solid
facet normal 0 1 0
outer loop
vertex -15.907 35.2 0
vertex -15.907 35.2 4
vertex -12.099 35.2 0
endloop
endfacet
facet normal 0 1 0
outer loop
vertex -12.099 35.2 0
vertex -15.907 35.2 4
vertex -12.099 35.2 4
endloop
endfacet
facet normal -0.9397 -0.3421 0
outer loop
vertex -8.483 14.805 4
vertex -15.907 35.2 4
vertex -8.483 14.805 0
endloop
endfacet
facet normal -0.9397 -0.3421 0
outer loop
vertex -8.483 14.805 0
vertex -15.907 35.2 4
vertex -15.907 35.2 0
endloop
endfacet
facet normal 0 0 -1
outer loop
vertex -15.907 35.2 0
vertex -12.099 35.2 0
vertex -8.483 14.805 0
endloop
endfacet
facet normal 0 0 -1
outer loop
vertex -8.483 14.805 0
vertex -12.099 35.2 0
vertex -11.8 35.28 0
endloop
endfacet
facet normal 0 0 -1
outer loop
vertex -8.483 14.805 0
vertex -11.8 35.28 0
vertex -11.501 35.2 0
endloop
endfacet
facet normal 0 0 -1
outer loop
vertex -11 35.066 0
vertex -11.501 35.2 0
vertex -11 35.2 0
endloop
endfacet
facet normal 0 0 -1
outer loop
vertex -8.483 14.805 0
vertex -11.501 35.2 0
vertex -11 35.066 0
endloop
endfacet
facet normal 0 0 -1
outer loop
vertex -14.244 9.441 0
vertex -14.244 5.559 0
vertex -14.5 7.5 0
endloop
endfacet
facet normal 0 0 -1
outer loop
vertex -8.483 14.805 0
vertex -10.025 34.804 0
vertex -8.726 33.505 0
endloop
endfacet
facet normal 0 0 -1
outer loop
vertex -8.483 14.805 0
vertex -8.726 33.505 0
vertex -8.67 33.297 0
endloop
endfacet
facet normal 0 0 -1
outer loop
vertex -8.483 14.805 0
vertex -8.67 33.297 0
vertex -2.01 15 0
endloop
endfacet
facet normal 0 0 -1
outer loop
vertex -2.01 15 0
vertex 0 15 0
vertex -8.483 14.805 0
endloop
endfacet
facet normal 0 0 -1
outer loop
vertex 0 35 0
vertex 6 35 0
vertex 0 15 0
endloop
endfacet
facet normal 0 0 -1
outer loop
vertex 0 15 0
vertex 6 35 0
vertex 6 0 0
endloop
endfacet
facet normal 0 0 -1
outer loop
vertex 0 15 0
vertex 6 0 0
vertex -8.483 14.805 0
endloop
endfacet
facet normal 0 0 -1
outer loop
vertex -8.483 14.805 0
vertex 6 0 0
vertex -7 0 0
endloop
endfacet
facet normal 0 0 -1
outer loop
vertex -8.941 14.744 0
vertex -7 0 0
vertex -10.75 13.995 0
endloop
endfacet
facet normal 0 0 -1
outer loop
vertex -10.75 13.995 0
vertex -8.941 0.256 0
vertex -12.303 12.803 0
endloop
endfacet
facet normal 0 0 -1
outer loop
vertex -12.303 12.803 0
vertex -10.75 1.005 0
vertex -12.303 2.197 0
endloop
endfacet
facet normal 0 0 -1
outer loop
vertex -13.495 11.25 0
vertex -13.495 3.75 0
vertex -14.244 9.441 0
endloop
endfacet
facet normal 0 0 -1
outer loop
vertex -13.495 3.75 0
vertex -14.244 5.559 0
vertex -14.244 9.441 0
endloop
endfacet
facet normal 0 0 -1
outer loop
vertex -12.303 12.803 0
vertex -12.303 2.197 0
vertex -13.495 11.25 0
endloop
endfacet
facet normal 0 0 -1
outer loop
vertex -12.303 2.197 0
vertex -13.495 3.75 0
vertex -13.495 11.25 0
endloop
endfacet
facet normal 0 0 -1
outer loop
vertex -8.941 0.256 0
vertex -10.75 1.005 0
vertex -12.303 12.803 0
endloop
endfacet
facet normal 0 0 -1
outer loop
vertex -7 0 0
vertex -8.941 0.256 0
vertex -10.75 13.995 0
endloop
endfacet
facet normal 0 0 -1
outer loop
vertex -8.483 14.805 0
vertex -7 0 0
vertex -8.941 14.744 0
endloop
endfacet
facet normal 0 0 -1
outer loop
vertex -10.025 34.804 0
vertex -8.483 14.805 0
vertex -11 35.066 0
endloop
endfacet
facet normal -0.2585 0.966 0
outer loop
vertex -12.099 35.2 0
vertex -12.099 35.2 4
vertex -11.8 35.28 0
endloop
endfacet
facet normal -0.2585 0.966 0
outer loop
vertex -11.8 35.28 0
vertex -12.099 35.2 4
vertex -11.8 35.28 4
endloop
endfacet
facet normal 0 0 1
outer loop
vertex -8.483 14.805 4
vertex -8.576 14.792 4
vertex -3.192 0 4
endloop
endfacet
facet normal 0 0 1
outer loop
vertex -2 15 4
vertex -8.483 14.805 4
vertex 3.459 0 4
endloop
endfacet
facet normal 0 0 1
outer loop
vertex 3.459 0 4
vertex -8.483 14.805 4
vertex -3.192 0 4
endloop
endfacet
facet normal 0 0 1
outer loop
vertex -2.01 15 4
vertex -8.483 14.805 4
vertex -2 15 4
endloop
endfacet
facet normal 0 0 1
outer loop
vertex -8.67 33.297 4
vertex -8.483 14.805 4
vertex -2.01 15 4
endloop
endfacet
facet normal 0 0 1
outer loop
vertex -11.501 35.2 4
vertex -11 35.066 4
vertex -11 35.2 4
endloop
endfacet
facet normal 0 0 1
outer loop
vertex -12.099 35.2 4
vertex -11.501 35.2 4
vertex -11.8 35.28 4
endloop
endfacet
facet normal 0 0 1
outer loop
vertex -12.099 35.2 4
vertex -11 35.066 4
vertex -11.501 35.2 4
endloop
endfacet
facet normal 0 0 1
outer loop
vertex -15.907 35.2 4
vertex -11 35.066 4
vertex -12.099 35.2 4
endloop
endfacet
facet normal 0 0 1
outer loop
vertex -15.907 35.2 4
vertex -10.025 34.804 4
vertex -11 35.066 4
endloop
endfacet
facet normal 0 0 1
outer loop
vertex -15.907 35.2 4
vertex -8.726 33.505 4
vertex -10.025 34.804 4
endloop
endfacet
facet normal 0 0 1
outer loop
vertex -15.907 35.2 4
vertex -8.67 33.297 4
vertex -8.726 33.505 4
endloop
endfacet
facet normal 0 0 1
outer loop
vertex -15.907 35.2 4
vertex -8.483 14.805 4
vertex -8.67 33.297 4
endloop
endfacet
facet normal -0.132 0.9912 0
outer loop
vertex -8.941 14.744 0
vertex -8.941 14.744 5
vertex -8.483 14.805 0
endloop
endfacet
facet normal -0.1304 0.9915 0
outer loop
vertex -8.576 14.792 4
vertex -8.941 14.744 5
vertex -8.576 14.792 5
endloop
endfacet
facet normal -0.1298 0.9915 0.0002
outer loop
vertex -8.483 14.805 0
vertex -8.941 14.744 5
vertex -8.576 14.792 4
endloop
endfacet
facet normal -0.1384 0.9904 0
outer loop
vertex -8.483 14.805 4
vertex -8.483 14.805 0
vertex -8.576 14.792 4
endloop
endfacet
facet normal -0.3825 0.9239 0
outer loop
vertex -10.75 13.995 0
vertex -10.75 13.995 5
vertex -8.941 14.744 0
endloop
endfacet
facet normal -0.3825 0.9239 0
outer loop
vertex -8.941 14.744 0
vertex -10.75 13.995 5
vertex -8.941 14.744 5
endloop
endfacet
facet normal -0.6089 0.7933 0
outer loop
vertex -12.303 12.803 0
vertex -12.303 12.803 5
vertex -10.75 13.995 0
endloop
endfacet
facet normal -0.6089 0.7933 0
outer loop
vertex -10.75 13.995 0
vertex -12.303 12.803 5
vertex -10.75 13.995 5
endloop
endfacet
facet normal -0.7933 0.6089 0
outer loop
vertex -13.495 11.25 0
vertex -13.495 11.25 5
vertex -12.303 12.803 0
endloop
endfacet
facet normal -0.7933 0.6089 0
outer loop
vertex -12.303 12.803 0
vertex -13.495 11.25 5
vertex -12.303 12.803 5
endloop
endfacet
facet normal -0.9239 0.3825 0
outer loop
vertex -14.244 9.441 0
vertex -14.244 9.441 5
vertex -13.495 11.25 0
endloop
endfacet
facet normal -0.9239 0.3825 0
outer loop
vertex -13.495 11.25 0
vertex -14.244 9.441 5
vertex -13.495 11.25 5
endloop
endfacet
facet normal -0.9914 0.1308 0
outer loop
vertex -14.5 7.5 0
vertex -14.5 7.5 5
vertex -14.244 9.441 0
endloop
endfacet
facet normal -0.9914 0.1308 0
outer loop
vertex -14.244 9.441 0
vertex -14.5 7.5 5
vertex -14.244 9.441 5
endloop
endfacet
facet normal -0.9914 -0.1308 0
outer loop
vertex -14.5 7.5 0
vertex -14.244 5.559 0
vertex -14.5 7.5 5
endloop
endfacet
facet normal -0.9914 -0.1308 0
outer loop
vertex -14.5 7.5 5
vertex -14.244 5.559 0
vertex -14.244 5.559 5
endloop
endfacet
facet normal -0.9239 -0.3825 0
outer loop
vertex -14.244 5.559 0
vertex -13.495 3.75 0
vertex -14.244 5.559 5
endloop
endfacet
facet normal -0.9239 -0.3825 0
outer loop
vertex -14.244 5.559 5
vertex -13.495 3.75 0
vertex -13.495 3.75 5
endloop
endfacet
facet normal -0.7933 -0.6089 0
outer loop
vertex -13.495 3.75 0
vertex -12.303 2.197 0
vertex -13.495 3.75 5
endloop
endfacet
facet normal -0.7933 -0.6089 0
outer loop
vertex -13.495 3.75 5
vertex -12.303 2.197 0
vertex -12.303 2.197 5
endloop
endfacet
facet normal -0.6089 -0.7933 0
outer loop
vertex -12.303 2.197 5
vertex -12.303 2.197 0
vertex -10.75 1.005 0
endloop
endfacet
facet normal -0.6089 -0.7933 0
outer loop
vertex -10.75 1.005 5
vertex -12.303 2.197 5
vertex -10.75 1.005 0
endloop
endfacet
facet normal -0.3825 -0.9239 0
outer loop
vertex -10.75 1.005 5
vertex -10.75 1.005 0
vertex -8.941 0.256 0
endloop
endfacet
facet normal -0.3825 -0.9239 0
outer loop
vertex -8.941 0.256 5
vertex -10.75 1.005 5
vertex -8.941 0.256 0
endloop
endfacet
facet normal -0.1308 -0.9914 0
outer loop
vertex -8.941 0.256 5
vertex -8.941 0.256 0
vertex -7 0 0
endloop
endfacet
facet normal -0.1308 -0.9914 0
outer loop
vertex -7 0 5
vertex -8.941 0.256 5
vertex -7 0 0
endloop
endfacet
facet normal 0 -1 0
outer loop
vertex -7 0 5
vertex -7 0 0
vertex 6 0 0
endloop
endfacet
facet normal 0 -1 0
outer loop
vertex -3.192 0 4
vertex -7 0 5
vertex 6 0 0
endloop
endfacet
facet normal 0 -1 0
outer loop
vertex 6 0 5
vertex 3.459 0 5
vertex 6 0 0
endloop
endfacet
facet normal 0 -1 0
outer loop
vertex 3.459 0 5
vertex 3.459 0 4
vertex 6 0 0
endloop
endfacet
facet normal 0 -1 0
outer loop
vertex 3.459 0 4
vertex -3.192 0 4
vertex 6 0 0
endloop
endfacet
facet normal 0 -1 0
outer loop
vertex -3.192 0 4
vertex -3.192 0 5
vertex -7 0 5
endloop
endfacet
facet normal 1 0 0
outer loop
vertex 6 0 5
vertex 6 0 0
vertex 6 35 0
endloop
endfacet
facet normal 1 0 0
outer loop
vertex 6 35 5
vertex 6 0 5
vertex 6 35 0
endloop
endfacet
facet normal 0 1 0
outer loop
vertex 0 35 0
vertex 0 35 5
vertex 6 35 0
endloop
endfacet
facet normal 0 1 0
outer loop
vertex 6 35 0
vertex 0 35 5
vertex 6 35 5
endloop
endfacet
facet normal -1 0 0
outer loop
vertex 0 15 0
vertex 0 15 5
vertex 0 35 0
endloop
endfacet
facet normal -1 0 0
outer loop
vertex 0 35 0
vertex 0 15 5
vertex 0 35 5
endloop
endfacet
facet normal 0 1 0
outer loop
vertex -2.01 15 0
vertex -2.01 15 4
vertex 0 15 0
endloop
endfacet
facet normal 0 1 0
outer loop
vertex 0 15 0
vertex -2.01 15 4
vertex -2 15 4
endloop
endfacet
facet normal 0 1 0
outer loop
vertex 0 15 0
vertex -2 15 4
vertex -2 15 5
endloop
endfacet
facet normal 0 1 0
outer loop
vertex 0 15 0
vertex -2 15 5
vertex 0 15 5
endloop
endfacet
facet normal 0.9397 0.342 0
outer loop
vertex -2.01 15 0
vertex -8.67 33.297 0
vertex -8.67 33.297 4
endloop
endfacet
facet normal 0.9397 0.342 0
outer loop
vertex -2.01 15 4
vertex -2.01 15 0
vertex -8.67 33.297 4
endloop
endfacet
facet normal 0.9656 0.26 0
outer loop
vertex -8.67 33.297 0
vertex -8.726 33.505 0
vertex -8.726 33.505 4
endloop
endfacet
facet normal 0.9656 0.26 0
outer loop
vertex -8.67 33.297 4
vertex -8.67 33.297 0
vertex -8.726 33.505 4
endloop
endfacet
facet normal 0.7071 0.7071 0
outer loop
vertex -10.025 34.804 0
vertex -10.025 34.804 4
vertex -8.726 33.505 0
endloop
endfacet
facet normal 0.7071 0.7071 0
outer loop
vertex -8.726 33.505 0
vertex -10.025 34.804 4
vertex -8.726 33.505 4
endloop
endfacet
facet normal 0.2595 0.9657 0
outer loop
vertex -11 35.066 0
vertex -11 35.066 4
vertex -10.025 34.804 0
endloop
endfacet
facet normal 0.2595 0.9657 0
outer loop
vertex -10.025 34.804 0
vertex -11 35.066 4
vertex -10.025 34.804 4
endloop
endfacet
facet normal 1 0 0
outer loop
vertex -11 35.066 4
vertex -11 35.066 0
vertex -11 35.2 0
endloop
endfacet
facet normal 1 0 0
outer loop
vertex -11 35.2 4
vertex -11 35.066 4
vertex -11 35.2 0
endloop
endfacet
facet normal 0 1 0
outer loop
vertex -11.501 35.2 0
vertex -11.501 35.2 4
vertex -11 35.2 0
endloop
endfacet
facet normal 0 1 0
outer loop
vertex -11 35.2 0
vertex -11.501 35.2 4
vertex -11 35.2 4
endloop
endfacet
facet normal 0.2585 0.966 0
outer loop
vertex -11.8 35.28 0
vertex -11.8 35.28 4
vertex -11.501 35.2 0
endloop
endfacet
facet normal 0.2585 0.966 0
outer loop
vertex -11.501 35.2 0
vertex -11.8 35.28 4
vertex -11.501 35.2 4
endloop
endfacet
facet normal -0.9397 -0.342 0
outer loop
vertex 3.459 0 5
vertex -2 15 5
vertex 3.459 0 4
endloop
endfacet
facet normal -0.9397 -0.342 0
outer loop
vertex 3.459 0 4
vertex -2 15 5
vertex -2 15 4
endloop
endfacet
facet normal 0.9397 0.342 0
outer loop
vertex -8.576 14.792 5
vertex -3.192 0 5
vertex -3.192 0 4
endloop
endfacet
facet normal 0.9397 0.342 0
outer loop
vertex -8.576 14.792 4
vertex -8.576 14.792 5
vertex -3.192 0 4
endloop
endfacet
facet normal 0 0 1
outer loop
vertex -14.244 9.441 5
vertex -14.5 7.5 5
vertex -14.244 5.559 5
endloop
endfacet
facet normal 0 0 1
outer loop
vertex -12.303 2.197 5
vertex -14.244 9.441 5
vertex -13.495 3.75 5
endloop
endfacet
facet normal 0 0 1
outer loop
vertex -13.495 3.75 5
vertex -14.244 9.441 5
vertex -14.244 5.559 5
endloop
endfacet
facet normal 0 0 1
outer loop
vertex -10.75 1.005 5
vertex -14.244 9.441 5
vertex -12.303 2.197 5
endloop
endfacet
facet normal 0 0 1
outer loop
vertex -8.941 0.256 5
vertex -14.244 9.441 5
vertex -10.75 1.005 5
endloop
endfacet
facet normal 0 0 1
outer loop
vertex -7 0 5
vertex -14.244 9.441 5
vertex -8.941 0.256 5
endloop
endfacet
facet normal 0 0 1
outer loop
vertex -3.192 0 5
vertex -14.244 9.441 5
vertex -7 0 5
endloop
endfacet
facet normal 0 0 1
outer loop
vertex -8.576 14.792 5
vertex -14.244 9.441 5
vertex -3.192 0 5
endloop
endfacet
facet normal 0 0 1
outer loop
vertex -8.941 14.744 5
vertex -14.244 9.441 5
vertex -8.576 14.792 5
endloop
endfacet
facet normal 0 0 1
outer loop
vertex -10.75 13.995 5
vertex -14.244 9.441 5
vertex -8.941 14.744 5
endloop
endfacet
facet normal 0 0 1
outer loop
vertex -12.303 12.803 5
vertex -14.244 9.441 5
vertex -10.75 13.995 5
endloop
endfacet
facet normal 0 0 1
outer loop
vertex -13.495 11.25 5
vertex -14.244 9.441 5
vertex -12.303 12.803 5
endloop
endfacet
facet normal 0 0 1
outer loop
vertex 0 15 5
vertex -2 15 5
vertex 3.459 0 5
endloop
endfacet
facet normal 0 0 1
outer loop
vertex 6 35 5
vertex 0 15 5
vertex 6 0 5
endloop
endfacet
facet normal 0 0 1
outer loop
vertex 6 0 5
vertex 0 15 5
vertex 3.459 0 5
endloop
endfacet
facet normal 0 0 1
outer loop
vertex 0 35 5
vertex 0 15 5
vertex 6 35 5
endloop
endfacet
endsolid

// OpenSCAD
difference(){
	union(){
		union(){
			cube(size = [6,35,5], center = false);
			translate([-7,0,0])
			cube(size = [10,15,5]);
			translate([-7,7.5,0])
			cylinder(h = 5, r=7.5);
		}


	difference(){
		union(){
			translate([-4,0,0])
			rotate(20,0,0)
			cube(size = [7,33,5], center = false);
			translate([-11.8,31.73,0])
			cylinder(h = 5, r=3.55);
			translate([-18,30.2,0])
			cube(size = [7,5,5], center = false);
		}
			translate([-12,4,0])
			rotate(20,0,0)
			cube(size = [7,33,5], center = false);
	}
}
	union(){
		translate([0,0,4])
		union(){
			translate([-2.10,-3,0])
			rotate(20,0,0)
			cube(size = [6.25,40,5], center = false);
			translate([-11.8,31.73,0])
			cylinder(h = 5, r=3.55);
			translate([-18,30.3,0])
			cube(size = [7,5,5], center = false);
		}
		
	}
}

	
	


	
